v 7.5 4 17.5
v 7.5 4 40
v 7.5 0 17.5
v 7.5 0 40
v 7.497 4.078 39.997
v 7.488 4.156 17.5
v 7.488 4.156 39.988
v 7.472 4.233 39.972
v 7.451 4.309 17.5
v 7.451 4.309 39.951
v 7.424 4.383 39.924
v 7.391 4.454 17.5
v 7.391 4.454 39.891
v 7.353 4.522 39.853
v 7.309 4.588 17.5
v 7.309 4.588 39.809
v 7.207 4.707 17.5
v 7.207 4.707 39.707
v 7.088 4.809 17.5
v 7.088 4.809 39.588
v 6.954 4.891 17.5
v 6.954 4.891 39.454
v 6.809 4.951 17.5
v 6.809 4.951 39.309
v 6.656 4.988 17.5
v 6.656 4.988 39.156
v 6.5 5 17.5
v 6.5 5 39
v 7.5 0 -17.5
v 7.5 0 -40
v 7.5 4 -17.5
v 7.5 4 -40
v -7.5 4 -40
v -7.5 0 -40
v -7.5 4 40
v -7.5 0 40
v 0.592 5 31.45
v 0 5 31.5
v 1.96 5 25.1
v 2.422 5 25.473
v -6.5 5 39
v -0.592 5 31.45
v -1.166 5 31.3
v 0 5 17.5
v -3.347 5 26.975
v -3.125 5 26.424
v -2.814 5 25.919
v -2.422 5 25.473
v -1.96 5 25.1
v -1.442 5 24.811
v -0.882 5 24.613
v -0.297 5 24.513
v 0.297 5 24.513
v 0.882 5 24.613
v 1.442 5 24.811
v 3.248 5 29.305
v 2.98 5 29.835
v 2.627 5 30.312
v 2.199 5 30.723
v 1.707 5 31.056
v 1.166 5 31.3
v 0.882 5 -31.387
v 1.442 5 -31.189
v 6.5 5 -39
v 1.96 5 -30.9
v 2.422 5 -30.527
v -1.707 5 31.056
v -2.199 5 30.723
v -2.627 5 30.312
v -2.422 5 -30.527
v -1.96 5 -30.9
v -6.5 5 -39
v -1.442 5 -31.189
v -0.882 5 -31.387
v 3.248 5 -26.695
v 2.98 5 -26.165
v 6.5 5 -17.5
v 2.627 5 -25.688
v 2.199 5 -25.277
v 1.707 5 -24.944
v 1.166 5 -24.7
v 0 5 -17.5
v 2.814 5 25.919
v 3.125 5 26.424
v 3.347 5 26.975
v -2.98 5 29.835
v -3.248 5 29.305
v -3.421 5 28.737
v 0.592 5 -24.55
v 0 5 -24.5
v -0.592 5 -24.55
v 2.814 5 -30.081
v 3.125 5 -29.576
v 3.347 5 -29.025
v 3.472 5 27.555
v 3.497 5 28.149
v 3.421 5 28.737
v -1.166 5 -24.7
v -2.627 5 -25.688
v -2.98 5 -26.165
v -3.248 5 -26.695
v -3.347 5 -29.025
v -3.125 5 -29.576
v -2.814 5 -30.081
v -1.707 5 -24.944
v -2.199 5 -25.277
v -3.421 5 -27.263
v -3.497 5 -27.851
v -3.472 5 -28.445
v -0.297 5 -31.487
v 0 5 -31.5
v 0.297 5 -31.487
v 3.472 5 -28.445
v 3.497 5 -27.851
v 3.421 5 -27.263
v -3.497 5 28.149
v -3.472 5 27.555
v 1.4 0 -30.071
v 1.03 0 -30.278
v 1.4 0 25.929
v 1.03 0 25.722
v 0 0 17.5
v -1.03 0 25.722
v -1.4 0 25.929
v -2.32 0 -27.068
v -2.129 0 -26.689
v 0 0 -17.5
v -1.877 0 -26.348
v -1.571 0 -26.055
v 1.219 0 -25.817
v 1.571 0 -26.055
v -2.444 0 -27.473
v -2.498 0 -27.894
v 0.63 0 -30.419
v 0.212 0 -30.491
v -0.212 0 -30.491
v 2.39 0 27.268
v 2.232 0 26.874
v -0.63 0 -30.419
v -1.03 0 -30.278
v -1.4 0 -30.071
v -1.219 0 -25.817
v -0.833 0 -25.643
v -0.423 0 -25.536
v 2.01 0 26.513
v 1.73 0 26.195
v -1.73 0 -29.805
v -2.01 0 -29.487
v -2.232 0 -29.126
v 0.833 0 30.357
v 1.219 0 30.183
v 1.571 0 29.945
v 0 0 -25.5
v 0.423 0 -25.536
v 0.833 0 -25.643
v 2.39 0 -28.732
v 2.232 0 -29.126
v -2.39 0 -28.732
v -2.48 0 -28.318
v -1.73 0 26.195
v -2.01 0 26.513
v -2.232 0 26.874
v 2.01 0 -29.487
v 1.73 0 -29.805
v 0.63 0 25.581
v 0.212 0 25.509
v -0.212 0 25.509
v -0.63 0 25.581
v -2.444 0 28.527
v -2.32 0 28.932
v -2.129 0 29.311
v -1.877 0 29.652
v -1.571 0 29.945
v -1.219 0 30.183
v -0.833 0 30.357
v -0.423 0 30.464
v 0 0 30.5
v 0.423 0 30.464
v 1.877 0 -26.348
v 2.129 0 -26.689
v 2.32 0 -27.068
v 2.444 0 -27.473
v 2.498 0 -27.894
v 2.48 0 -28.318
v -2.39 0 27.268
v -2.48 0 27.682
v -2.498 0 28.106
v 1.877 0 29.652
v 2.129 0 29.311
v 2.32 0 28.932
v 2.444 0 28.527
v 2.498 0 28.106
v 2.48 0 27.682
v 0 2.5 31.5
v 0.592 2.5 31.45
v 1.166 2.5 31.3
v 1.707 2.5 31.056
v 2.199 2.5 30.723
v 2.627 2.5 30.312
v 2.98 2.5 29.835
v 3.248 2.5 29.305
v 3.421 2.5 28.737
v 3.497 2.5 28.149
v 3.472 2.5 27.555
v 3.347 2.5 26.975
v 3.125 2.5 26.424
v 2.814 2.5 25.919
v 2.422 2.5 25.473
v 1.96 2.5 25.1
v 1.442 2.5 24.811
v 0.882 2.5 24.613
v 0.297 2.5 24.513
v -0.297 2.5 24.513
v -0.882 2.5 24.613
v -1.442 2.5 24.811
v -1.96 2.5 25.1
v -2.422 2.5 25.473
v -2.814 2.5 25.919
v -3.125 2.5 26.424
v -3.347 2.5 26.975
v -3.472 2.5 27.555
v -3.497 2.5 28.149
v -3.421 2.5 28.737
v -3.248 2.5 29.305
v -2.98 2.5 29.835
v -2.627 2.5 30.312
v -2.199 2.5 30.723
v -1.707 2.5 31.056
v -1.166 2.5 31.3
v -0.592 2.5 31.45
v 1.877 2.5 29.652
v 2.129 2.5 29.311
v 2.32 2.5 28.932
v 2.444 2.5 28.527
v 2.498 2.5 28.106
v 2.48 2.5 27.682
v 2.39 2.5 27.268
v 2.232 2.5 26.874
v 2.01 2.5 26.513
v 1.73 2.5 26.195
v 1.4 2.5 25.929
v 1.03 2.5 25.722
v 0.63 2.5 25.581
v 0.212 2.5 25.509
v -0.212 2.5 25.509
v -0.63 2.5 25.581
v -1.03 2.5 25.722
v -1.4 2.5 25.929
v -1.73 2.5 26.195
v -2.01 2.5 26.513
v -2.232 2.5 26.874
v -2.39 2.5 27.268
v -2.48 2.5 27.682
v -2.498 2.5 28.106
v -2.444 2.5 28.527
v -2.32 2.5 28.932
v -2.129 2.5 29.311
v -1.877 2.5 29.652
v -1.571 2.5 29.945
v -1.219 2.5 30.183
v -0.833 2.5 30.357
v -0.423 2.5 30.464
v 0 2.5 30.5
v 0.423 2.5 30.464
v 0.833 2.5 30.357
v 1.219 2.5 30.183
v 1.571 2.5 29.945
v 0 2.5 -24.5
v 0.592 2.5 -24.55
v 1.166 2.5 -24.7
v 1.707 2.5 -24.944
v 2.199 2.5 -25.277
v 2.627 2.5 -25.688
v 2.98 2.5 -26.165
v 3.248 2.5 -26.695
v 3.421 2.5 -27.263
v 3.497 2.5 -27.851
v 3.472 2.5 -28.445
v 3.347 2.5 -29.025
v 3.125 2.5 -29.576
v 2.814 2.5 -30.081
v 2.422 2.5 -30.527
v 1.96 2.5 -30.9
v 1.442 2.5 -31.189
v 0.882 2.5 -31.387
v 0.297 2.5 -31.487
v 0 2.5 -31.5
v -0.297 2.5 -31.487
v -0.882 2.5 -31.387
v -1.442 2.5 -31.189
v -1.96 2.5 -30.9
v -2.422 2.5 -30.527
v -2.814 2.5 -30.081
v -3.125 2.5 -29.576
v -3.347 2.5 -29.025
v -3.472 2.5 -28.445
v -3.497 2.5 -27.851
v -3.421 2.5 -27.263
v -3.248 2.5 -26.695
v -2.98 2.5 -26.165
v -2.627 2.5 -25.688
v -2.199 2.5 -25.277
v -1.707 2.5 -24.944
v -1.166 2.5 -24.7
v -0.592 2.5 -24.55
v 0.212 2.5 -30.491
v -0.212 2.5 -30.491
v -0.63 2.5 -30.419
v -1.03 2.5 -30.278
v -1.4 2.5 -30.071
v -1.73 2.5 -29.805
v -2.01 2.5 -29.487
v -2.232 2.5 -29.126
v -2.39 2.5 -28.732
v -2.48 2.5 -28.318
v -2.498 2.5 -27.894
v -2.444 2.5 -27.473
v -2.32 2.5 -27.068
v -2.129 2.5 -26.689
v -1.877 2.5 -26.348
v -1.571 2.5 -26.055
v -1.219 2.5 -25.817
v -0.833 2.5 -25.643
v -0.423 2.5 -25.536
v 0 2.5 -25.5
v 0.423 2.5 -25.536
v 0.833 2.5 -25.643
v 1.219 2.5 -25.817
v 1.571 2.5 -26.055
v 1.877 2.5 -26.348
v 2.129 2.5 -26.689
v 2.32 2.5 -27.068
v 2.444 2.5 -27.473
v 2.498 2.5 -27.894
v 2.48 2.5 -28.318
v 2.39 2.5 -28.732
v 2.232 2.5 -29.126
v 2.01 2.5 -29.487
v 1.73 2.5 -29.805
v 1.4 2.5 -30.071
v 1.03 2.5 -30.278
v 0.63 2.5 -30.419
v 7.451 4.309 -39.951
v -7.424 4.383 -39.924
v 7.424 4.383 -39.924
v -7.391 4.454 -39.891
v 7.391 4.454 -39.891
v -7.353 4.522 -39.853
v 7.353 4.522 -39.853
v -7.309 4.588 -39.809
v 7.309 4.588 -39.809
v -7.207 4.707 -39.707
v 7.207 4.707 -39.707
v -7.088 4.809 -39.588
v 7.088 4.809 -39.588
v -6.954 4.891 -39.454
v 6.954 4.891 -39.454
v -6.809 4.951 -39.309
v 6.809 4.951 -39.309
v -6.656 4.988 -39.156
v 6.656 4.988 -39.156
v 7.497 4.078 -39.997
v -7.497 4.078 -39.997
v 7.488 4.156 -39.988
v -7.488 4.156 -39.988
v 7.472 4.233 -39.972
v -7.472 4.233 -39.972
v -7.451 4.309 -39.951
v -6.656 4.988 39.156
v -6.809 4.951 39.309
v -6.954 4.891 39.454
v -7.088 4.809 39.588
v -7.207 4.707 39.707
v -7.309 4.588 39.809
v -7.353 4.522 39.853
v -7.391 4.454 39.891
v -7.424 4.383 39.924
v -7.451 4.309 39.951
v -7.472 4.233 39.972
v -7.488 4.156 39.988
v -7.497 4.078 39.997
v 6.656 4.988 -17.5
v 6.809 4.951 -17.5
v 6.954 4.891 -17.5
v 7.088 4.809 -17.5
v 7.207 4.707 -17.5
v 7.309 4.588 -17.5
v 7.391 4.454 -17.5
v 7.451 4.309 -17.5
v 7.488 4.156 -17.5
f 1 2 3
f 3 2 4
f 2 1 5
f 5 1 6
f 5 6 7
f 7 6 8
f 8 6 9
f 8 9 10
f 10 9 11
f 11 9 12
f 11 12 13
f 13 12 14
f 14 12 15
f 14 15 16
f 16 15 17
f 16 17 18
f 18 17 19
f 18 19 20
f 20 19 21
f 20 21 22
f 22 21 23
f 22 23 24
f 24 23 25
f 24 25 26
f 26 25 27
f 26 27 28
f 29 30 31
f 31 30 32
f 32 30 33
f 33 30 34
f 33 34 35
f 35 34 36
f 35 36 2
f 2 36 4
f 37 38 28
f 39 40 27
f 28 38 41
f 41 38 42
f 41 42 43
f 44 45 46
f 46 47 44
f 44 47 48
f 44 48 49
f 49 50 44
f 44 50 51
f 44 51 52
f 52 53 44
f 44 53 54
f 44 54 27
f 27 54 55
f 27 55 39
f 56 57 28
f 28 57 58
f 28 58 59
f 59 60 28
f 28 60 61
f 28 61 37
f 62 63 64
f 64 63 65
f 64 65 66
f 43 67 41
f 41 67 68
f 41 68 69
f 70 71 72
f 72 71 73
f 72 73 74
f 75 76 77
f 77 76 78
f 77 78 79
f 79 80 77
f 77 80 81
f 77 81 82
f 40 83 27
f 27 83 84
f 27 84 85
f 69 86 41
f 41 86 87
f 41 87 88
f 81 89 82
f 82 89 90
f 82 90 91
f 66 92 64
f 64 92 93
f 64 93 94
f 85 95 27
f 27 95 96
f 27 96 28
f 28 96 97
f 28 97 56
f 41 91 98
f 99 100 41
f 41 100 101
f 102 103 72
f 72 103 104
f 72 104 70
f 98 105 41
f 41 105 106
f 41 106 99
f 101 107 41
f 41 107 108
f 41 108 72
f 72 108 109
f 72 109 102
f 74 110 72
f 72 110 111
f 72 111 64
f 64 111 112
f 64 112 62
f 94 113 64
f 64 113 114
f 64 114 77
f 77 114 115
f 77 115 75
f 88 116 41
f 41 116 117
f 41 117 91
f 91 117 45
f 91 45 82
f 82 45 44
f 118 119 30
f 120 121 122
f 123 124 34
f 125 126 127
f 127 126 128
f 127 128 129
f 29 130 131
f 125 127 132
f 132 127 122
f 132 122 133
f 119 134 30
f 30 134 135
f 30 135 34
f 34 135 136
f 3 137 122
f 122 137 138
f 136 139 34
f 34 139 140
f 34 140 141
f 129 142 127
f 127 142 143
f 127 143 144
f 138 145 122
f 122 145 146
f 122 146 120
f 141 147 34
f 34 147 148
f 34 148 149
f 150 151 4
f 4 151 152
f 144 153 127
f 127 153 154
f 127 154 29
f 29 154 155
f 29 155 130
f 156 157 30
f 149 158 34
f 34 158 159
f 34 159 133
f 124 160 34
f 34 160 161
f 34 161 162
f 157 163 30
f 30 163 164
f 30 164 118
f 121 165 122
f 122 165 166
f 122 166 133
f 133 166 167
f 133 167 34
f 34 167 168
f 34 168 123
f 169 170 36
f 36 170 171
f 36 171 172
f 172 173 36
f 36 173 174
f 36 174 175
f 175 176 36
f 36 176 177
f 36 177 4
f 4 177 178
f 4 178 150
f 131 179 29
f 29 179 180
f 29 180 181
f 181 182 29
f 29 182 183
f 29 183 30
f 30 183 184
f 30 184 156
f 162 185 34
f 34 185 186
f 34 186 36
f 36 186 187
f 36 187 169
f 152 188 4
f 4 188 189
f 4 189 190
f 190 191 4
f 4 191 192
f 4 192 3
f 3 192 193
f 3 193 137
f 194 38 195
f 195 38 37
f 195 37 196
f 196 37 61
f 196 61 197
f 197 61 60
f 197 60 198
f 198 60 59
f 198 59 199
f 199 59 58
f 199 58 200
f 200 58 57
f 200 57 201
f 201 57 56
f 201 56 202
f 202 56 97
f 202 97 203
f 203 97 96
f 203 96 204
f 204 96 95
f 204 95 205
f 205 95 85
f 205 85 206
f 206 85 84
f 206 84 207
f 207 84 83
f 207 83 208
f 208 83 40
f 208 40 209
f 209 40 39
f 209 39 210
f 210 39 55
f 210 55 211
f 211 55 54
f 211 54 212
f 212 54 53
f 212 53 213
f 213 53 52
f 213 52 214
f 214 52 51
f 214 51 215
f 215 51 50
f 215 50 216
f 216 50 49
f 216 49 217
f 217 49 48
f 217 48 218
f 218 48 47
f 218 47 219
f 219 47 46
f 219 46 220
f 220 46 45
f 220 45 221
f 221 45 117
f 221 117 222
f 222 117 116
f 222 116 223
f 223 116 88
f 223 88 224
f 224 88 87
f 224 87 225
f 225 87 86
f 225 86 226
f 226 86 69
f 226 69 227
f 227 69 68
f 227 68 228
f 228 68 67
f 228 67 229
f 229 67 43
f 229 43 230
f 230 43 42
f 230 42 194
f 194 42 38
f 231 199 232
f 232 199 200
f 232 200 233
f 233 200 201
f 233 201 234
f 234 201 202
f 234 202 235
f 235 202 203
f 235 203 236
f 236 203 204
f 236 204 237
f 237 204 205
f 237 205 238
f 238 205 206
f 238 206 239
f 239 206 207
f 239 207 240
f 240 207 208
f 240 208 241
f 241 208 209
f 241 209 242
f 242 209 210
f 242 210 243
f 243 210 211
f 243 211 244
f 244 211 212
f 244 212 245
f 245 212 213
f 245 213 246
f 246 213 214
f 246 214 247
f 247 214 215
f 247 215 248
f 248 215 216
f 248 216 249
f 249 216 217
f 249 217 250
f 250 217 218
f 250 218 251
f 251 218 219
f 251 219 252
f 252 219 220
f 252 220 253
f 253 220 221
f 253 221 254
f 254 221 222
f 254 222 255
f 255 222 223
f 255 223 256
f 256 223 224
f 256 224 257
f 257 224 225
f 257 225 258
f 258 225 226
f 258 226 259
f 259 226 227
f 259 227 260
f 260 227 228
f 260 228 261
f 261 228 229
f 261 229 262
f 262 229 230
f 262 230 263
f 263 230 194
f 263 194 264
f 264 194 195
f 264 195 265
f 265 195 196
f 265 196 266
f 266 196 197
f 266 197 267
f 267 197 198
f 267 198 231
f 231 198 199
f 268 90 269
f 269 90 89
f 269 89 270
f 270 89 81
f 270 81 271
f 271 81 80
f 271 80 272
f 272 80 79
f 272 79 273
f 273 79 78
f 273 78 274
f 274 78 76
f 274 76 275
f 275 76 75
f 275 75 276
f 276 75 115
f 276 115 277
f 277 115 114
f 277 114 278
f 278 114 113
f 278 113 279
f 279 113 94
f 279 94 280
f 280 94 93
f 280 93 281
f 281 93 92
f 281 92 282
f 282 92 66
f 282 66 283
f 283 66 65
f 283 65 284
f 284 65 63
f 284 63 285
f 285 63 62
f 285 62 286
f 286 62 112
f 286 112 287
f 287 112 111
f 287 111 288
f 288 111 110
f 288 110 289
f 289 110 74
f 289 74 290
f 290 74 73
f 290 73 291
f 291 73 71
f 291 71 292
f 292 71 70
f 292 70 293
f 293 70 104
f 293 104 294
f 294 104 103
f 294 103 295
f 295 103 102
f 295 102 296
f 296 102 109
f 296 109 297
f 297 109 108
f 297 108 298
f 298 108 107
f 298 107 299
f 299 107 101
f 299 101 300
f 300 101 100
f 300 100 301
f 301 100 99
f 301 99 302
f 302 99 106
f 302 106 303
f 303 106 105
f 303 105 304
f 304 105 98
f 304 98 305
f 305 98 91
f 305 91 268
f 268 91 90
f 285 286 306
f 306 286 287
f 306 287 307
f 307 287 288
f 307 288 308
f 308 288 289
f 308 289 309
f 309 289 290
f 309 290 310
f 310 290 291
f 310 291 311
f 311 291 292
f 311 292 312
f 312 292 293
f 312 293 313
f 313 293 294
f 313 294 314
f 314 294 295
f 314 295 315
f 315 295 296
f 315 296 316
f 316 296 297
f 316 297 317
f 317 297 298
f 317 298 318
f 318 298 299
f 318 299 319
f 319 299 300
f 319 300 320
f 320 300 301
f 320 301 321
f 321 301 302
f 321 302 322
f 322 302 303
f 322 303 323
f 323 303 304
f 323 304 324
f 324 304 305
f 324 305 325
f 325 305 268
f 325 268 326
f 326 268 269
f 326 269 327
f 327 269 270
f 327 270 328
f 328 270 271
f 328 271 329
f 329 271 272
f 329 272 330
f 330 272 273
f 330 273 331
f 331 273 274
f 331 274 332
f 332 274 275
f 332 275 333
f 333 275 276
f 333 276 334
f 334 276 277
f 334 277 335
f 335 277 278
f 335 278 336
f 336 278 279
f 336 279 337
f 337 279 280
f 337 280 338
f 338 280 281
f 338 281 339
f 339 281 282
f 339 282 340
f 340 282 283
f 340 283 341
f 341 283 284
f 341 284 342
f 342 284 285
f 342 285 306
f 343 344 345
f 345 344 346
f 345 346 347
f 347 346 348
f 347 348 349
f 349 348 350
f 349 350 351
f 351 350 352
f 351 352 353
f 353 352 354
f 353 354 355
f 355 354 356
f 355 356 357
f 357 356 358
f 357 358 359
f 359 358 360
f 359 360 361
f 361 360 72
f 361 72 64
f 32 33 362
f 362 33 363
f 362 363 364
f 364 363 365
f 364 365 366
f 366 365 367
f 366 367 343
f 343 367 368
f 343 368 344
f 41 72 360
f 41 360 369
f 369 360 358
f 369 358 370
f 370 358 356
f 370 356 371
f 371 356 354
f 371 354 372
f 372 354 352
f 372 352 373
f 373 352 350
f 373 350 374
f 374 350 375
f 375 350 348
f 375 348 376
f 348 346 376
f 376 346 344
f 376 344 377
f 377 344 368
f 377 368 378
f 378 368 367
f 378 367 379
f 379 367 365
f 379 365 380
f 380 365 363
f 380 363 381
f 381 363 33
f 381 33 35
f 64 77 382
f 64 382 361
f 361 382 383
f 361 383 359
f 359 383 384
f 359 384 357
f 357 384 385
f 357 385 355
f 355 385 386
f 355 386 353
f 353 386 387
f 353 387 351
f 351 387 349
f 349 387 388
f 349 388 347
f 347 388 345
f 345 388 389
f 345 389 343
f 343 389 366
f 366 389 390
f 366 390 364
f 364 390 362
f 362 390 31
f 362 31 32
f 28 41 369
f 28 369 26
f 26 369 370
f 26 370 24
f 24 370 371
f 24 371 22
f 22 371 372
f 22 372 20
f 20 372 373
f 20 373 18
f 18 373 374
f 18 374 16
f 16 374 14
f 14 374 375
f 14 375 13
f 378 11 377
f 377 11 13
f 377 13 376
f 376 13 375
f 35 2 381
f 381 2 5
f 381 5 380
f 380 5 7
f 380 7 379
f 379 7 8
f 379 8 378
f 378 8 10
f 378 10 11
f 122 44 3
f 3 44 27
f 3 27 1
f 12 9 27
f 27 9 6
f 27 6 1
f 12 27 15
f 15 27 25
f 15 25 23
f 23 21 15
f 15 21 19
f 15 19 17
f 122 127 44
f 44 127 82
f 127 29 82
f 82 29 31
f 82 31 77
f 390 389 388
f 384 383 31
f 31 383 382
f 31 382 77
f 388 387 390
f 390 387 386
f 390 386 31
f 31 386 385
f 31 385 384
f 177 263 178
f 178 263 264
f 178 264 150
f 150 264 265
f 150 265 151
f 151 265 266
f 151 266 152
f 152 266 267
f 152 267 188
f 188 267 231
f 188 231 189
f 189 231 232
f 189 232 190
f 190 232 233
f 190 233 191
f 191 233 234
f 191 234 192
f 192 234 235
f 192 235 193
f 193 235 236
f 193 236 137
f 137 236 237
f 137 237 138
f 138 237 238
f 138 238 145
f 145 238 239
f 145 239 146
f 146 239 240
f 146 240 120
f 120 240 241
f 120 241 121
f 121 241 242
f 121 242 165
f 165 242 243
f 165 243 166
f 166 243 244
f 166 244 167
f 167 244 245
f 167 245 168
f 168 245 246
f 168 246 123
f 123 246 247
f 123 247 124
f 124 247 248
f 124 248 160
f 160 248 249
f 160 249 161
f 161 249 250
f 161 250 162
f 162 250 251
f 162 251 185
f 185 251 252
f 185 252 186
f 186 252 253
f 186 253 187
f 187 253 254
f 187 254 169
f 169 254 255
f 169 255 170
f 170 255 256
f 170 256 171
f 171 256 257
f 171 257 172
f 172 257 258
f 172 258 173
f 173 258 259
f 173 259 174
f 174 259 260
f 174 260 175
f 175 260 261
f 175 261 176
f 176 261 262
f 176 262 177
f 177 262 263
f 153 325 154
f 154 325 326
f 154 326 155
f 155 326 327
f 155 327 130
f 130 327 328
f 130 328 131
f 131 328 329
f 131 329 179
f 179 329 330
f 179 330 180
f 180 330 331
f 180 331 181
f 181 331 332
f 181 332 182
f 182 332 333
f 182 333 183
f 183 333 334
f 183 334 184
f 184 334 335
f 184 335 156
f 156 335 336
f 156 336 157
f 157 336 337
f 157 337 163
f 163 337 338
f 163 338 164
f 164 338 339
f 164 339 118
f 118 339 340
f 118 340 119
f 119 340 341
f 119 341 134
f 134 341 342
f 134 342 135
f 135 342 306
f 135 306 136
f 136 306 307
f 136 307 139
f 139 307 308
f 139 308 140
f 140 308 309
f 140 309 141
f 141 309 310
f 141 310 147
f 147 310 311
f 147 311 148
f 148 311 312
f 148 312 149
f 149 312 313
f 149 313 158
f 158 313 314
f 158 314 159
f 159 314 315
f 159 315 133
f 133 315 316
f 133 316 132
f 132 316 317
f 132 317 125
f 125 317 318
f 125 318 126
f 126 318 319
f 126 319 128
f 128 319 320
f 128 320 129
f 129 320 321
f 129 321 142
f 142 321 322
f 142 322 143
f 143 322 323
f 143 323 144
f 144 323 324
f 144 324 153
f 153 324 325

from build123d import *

# Parameters (mm, degrees)
SKETCH1_W           = 15
SKETCH1_H           = 80
BOSS_EXTRUDE1_DEPTH = 5
SKETCH2_R           = 3.5
CUT_EXTRUDE1_DEPTH  = 2.5
FILLET1_R           = 1
SKETCH3_W           = 7.5
SKETCH3_H           = 35
CUT_EXTRUDE2_DEPTH  = 42.003048667
SKETCH4_R           = 2.5
CUT_EXTRUDE3_DEPTH  = 41.773766076


with BuildPart() as part:
    # Sketch1 → Boss-Extrude1 (new body)
    with BuildSketch(Plane(origin=(0, 0, 0), x_dir=(1, 0, 0), z_dir=(0, 1, 0))):
        Rectangle(SKETCH1_W, SKETCH1_H)
    extrude(amount=BOSS_EXTRUDE1_DEPTH)

    # Sketch2 → Cut-Extrude1 (cut)
    with BuildSketch(Plane(origin=(0, 5, 0), x_dir=(1, 0, 0), z_dir=(0, 1, 0))):
        with Locations(Location((0, -28, 0), (0, 0, 270))):
            Circle(SKETCH2_R)
    cut_extrude1 = extrude(amount=-CUT_EXTRUDE1_DEPTH, mode=Mode.SUBTRACT)

    # Mirror1: Cut-Extrude1 across plane
    add(cut_extrude1.mirror(Plane.XY), mode=Mode.SUBTRACT)

    # Fillet1
    fillet1_edges = [part.edges().sort_by_distance(p)[0] for p in [
        (-7.5, 5, 0),
        (0, 5, 40),
        (7.5, 5, 0),
        (0, 5, -40),
    ]]
    fillet(fillet1_edges, radius=FILLET1_R)

    # Sketch3 → Cut-Extrude2 (cut, through all)
    with BuildSketch(Plane(origin=(0, 5, 0), x_dir=(1, 0, 0), z_dir=(0, 1, 0))):
        with Locations((3.75, 0)):
            Rectangle(SKETCH3_W, SKETCH3_H)
    extrude(amount=-CUT_EXTRUDE2_DEPTH, mode=Mode.SUBTRACT)

    # Sketch4 → Cut-Extrude3 (cut, through all)
    with BuildSketch(Plane(origin=(0, 2.5, 0), x_dir=(1, 0, 0), z_dir=(0, 1, 0))):
        with Locations(Location((0, 28, 0), (0, 0, 270))):
            Circle(SKETCH4_R)
        with Locations(Location((0, -28, 0), (0, 0, 270))):
            Circle(SKETCH4_R)
    extrude(amount=-CUT_EXTRUDE3_DEPTH, mode=Mode.SUBTRACT)


solid = part.part
